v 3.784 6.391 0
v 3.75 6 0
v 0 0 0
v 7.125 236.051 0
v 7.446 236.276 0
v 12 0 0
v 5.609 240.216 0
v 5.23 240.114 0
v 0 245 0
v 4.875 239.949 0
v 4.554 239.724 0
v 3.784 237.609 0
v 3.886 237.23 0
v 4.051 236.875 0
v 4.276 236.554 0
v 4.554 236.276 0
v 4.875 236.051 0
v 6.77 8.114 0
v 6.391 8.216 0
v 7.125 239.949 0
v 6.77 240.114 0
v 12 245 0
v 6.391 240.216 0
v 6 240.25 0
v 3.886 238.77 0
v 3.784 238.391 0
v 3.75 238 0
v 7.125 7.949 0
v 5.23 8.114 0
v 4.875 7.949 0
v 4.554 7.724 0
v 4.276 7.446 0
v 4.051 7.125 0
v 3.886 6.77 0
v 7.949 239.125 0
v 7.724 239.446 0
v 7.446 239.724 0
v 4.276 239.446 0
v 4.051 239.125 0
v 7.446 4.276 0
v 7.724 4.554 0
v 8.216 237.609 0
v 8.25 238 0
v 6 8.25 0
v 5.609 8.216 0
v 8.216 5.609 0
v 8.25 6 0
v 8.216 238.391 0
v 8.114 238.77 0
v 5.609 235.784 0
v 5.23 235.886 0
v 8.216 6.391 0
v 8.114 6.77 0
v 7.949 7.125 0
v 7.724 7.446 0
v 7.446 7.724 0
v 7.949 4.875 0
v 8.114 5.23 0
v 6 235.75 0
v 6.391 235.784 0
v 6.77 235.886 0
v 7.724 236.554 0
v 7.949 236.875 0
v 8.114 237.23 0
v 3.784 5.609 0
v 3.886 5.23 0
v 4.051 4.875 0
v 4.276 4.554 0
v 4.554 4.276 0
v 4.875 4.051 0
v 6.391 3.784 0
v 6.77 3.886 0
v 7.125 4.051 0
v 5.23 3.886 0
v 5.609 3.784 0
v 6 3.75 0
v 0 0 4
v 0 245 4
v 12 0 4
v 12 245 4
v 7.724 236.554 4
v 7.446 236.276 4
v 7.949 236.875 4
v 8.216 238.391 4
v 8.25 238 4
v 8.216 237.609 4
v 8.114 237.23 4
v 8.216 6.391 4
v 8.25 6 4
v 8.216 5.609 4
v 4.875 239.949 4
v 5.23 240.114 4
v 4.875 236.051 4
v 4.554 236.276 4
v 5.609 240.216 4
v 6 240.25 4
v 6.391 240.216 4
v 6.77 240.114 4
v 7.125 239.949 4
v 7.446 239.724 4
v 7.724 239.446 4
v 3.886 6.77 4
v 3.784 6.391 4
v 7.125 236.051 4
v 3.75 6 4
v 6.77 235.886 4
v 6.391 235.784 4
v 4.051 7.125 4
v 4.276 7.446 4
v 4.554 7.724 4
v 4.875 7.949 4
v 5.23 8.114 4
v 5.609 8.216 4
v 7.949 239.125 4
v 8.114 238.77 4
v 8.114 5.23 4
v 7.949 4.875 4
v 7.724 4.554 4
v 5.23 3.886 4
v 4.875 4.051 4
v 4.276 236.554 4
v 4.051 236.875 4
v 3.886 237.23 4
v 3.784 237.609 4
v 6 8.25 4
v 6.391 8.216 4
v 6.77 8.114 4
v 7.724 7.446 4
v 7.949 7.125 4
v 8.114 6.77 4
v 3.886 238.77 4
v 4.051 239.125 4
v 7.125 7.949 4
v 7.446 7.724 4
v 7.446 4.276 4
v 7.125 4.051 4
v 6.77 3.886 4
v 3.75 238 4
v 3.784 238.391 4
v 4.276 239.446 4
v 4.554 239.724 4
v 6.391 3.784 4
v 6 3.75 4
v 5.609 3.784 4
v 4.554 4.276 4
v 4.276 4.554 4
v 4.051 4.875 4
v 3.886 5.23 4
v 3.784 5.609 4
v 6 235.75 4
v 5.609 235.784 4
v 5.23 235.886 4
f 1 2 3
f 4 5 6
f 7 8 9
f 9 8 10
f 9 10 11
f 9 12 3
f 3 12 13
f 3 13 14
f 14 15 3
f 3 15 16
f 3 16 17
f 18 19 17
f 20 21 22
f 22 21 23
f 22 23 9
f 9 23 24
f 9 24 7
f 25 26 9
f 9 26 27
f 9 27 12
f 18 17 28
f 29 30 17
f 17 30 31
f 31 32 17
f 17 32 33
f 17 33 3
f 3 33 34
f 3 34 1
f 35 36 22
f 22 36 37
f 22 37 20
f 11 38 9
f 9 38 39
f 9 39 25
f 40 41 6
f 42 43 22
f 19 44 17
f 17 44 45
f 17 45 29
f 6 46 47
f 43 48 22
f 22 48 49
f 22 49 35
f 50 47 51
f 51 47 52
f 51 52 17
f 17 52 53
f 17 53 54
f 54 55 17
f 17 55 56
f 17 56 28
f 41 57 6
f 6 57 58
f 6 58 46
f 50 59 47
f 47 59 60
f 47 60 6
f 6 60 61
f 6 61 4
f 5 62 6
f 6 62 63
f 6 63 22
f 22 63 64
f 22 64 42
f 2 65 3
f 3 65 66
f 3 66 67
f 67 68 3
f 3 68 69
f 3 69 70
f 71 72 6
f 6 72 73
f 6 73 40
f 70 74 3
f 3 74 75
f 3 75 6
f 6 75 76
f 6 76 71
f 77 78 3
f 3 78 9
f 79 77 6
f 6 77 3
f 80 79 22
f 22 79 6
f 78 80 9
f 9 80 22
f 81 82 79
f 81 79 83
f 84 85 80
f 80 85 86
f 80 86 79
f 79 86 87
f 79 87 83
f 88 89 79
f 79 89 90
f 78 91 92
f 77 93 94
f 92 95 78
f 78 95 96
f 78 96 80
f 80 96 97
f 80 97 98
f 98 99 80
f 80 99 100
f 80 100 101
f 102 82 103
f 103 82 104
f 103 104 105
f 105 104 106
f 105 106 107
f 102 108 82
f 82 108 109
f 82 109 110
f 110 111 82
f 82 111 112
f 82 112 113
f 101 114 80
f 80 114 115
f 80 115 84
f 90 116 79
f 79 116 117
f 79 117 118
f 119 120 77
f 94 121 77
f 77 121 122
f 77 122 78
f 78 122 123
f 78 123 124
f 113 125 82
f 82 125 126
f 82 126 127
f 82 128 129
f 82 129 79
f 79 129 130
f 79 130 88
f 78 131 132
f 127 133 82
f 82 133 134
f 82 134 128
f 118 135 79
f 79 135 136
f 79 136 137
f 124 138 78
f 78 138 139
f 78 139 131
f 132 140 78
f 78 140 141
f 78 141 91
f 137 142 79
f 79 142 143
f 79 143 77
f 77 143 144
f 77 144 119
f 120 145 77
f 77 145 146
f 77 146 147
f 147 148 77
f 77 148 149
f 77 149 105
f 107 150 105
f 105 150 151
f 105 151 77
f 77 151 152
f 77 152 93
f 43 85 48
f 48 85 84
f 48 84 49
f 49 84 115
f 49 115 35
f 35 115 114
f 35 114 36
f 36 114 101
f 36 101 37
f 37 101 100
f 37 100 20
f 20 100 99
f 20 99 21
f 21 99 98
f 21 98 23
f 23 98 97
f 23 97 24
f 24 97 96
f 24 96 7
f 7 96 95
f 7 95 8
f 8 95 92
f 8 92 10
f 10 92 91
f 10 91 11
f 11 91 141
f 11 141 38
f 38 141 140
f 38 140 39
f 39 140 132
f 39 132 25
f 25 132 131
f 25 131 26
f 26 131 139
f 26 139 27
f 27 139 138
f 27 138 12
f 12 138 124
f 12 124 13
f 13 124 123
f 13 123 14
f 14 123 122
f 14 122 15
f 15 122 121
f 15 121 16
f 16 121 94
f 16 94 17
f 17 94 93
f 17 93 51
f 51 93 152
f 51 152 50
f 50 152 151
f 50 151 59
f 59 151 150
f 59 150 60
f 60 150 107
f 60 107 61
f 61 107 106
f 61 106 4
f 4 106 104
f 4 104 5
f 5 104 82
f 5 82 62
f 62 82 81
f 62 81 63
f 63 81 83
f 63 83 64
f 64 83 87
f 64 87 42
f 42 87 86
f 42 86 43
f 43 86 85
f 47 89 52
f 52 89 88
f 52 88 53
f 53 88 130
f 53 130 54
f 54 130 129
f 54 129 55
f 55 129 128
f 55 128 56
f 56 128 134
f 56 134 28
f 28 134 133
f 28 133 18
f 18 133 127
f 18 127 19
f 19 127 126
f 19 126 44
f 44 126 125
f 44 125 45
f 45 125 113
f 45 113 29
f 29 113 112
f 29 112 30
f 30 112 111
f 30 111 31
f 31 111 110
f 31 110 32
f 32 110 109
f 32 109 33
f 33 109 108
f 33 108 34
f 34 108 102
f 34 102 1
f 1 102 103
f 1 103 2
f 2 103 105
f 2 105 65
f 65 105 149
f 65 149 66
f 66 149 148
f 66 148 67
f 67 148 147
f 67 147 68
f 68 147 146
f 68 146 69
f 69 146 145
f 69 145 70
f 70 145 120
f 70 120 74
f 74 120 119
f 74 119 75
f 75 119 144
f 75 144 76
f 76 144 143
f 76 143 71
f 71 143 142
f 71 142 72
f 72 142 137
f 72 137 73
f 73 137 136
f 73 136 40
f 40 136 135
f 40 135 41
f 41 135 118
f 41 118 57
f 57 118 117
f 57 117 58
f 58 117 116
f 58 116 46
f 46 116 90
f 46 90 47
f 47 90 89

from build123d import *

# Parameters (mm, degrees)
SKETCH1_W                     = 12
SKETCH1_H                     = 245
PROFILE_DEPTH                 = 4
FASTENER_CLEARANCE_DEPTH      = 246.326313305
FASTENER_CLEARANCE_DEPTH_BACK = 246.326313305
SKETCH2_R                     = 2.25


with BuildPart() as part:
    # Sketch1 → Profile (new body)
    with BuildSketch(Plane.XY):
        with Locations((6, 122.5)):
            Rectangle(SKETCH1_W, SKETCH1_H)
    extrude(amount=PROFILE_DEPTH)

    # Sketch2 → Fastener_clearance (cut, two sides: drawn at the far end of the back side and taken through both)
    with BuildSketch(Plane.XY.offset(-FASTENER_CLEARANCE_DEPTH_BACK)):
        with Locations((6, 6)):
            Circle(SKETCH2_R)
        with Locations((6, 238)):
            Circle(SKETCH2_R)
    extrude(amount=FASTENER_CLEARANCE_DEPTH + FASTENER_CLEARANCE_DEPTH_BACK, mode=Mode.SUBTRACT)


solid = part.part
